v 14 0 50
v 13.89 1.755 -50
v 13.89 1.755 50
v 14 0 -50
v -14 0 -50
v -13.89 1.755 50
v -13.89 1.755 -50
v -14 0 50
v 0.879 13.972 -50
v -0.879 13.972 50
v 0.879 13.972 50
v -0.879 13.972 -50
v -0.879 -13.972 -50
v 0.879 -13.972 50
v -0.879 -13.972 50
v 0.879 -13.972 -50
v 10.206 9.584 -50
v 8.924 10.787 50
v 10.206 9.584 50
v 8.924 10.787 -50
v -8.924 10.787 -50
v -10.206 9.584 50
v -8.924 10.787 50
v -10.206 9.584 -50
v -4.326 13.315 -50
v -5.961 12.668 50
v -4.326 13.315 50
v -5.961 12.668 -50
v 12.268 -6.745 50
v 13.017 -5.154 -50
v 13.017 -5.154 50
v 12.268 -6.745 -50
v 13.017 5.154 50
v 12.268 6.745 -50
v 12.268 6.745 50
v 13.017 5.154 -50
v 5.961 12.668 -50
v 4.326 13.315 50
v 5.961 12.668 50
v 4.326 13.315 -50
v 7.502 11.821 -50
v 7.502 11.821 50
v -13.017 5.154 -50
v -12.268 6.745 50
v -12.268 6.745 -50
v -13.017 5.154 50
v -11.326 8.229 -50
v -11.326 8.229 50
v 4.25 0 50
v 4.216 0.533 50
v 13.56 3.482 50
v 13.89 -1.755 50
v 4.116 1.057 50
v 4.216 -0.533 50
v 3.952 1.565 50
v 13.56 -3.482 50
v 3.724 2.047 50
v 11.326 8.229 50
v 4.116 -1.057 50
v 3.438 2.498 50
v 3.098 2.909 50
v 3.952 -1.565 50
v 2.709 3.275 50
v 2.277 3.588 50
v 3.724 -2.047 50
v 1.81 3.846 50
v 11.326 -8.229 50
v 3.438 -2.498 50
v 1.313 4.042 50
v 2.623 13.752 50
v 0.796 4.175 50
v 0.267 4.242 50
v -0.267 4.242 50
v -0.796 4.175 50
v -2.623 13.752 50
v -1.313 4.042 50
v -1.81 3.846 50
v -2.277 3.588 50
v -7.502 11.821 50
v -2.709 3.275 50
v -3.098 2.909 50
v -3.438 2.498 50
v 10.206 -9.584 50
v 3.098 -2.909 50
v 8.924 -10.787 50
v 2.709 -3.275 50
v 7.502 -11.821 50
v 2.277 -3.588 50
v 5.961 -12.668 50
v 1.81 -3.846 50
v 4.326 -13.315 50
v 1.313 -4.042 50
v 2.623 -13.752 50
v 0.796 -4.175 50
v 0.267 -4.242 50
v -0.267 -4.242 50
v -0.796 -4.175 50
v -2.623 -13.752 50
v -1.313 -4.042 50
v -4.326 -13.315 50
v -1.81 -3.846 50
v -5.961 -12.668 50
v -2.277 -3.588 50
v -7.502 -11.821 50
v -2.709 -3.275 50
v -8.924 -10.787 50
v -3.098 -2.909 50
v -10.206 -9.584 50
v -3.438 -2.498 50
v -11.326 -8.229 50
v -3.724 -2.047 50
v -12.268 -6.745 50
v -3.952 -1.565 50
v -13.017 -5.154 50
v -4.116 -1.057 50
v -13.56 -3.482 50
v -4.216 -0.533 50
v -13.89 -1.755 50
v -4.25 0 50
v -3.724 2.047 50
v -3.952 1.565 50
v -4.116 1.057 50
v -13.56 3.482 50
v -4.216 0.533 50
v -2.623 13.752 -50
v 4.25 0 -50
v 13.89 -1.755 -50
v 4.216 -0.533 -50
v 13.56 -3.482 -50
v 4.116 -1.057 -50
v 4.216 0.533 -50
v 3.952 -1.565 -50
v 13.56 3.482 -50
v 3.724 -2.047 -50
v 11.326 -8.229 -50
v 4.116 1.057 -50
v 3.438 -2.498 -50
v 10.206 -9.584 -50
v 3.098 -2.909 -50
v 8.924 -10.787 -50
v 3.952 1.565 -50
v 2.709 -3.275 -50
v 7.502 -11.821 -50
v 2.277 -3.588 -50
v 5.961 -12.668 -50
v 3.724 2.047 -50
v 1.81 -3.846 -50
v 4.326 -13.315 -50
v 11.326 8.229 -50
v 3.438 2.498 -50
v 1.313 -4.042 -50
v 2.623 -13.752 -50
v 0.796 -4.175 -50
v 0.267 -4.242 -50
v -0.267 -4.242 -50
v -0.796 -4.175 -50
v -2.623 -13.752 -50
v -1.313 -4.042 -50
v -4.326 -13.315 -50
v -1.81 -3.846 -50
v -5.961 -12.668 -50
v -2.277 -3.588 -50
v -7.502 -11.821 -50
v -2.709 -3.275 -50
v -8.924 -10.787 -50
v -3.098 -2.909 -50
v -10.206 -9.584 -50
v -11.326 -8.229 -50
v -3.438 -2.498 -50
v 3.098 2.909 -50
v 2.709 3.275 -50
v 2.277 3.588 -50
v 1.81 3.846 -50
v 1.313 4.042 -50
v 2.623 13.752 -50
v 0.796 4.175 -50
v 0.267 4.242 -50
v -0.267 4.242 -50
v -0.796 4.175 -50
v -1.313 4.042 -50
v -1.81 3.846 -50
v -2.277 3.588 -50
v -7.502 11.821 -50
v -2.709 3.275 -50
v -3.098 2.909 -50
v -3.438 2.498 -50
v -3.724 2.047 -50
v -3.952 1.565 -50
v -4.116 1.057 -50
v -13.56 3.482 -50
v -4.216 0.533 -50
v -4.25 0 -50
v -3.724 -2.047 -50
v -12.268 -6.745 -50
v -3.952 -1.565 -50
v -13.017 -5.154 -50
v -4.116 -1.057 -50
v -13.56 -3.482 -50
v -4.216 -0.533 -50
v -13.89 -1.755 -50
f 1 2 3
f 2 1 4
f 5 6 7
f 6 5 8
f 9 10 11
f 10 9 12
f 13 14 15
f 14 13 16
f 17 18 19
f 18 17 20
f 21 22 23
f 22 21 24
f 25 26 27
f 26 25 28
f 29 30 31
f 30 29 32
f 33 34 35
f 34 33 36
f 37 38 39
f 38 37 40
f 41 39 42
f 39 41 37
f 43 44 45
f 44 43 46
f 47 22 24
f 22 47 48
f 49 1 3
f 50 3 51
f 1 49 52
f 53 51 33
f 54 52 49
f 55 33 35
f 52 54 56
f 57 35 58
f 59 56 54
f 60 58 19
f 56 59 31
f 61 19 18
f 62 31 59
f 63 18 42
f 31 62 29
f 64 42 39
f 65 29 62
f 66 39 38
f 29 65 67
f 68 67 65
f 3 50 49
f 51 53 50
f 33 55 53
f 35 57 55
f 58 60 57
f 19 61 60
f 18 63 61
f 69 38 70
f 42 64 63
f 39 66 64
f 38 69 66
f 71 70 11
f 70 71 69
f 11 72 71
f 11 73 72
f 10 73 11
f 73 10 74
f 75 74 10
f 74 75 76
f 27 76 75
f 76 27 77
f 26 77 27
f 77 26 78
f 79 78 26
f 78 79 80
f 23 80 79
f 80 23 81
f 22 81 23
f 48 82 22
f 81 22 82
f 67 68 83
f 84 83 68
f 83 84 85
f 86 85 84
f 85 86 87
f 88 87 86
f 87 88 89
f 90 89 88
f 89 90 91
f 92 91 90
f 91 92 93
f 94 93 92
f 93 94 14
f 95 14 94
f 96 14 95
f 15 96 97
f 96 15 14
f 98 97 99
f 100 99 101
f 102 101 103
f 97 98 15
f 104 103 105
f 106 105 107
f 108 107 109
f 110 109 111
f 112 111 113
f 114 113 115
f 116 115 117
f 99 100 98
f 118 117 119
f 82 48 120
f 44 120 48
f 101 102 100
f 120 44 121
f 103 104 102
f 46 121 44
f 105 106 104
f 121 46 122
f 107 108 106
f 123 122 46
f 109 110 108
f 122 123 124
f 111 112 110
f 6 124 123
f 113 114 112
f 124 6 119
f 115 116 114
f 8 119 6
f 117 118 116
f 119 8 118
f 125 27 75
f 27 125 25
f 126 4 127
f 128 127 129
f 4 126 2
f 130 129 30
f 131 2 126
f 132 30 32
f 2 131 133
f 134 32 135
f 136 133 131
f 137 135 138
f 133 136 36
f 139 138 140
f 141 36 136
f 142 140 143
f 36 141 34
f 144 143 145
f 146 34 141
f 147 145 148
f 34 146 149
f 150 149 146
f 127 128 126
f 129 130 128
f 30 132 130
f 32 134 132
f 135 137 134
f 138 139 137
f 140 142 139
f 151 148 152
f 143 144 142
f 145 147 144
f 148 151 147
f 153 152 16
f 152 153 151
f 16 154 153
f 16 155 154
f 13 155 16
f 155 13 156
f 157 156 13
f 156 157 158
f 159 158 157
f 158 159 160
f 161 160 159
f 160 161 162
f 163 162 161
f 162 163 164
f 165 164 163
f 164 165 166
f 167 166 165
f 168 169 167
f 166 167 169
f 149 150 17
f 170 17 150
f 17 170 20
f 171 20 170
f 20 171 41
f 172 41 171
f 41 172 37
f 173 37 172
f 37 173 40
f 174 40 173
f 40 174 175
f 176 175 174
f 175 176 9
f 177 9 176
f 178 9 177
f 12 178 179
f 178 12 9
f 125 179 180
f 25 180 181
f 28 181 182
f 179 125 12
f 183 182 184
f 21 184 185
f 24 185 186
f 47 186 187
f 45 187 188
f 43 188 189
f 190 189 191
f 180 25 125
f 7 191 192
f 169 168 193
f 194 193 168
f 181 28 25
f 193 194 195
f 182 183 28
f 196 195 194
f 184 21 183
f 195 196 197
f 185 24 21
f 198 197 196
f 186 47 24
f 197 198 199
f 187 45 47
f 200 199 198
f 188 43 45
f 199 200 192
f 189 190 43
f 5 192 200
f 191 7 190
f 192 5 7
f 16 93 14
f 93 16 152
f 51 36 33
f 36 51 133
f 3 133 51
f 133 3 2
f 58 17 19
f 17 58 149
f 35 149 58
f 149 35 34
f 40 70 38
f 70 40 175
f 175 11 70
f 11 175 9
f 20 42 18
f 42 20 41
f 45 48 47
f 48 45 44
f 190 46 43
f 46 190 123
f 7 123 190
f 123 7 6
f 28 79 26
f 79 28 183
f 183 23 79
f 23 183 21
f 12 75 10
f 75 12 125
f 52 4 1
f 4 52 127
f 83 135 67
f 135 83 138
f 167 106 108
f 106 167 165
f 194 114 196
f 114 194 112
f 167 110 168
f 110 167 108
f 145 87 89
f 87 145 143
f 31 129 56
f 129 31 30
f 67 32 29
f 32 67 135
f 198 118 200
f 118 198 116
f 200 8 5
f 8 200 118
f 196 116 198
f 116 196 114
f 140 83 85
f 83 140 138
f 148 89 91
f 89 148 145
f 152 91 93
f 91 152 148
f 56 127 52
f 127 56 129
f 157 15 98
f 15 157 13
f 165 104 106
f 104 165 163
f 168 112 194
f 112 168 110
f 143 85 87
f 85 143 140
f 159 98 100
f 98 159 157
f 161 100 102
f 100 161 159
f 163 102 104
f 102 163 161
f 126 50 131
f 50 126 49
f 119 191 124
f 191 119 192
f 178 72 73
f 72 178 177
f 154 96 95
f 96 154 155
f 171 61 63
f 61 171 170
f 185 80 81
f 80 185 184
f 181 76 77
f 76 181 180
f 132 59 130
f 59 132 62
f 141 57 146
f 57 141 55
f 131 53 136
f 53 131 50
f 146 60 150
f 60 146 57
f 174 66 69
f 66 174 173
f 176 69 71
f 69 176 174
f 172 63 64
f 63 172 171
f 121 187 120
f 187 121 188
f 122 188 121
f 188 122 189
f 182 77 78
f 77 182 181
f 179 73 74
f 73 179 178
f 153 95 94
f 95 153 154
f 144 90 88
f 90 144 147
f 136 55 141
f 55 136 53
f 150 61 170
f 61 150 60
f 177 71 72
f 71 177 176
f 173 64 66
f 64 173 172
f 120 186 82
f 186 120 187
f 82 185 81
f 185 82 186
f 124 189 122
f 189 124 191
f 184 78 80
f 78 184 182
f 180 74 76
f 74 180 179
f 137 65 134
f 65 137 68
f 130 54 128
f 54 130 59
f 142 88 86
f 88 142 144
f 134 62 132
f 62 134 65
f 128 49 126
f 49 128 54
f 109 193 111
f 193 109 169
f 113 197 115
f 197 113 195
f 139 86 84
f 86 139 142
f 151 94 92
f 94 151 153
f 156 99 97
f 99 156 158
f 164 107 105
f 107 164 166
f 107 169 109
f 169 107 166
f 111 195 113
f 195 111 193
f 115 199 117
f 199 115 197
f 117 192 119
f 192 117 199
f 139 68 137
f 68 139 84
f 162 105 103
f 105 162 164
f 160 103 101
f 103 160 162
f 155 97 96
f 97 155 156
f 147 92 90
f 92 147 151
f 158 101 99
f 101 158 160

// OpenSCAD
$fn = 50;


difference() {
	union() {
		translate(v = [0, 0, -50.0000000000]) {
			cylinder(h = 100, r = 14.0000000000);
		}
	}
	union() {
		translate(v = [0, 0, -100.0000000000]) {
			cylinder(h = 200, r = 4.2500000000);
		}
	}
}
